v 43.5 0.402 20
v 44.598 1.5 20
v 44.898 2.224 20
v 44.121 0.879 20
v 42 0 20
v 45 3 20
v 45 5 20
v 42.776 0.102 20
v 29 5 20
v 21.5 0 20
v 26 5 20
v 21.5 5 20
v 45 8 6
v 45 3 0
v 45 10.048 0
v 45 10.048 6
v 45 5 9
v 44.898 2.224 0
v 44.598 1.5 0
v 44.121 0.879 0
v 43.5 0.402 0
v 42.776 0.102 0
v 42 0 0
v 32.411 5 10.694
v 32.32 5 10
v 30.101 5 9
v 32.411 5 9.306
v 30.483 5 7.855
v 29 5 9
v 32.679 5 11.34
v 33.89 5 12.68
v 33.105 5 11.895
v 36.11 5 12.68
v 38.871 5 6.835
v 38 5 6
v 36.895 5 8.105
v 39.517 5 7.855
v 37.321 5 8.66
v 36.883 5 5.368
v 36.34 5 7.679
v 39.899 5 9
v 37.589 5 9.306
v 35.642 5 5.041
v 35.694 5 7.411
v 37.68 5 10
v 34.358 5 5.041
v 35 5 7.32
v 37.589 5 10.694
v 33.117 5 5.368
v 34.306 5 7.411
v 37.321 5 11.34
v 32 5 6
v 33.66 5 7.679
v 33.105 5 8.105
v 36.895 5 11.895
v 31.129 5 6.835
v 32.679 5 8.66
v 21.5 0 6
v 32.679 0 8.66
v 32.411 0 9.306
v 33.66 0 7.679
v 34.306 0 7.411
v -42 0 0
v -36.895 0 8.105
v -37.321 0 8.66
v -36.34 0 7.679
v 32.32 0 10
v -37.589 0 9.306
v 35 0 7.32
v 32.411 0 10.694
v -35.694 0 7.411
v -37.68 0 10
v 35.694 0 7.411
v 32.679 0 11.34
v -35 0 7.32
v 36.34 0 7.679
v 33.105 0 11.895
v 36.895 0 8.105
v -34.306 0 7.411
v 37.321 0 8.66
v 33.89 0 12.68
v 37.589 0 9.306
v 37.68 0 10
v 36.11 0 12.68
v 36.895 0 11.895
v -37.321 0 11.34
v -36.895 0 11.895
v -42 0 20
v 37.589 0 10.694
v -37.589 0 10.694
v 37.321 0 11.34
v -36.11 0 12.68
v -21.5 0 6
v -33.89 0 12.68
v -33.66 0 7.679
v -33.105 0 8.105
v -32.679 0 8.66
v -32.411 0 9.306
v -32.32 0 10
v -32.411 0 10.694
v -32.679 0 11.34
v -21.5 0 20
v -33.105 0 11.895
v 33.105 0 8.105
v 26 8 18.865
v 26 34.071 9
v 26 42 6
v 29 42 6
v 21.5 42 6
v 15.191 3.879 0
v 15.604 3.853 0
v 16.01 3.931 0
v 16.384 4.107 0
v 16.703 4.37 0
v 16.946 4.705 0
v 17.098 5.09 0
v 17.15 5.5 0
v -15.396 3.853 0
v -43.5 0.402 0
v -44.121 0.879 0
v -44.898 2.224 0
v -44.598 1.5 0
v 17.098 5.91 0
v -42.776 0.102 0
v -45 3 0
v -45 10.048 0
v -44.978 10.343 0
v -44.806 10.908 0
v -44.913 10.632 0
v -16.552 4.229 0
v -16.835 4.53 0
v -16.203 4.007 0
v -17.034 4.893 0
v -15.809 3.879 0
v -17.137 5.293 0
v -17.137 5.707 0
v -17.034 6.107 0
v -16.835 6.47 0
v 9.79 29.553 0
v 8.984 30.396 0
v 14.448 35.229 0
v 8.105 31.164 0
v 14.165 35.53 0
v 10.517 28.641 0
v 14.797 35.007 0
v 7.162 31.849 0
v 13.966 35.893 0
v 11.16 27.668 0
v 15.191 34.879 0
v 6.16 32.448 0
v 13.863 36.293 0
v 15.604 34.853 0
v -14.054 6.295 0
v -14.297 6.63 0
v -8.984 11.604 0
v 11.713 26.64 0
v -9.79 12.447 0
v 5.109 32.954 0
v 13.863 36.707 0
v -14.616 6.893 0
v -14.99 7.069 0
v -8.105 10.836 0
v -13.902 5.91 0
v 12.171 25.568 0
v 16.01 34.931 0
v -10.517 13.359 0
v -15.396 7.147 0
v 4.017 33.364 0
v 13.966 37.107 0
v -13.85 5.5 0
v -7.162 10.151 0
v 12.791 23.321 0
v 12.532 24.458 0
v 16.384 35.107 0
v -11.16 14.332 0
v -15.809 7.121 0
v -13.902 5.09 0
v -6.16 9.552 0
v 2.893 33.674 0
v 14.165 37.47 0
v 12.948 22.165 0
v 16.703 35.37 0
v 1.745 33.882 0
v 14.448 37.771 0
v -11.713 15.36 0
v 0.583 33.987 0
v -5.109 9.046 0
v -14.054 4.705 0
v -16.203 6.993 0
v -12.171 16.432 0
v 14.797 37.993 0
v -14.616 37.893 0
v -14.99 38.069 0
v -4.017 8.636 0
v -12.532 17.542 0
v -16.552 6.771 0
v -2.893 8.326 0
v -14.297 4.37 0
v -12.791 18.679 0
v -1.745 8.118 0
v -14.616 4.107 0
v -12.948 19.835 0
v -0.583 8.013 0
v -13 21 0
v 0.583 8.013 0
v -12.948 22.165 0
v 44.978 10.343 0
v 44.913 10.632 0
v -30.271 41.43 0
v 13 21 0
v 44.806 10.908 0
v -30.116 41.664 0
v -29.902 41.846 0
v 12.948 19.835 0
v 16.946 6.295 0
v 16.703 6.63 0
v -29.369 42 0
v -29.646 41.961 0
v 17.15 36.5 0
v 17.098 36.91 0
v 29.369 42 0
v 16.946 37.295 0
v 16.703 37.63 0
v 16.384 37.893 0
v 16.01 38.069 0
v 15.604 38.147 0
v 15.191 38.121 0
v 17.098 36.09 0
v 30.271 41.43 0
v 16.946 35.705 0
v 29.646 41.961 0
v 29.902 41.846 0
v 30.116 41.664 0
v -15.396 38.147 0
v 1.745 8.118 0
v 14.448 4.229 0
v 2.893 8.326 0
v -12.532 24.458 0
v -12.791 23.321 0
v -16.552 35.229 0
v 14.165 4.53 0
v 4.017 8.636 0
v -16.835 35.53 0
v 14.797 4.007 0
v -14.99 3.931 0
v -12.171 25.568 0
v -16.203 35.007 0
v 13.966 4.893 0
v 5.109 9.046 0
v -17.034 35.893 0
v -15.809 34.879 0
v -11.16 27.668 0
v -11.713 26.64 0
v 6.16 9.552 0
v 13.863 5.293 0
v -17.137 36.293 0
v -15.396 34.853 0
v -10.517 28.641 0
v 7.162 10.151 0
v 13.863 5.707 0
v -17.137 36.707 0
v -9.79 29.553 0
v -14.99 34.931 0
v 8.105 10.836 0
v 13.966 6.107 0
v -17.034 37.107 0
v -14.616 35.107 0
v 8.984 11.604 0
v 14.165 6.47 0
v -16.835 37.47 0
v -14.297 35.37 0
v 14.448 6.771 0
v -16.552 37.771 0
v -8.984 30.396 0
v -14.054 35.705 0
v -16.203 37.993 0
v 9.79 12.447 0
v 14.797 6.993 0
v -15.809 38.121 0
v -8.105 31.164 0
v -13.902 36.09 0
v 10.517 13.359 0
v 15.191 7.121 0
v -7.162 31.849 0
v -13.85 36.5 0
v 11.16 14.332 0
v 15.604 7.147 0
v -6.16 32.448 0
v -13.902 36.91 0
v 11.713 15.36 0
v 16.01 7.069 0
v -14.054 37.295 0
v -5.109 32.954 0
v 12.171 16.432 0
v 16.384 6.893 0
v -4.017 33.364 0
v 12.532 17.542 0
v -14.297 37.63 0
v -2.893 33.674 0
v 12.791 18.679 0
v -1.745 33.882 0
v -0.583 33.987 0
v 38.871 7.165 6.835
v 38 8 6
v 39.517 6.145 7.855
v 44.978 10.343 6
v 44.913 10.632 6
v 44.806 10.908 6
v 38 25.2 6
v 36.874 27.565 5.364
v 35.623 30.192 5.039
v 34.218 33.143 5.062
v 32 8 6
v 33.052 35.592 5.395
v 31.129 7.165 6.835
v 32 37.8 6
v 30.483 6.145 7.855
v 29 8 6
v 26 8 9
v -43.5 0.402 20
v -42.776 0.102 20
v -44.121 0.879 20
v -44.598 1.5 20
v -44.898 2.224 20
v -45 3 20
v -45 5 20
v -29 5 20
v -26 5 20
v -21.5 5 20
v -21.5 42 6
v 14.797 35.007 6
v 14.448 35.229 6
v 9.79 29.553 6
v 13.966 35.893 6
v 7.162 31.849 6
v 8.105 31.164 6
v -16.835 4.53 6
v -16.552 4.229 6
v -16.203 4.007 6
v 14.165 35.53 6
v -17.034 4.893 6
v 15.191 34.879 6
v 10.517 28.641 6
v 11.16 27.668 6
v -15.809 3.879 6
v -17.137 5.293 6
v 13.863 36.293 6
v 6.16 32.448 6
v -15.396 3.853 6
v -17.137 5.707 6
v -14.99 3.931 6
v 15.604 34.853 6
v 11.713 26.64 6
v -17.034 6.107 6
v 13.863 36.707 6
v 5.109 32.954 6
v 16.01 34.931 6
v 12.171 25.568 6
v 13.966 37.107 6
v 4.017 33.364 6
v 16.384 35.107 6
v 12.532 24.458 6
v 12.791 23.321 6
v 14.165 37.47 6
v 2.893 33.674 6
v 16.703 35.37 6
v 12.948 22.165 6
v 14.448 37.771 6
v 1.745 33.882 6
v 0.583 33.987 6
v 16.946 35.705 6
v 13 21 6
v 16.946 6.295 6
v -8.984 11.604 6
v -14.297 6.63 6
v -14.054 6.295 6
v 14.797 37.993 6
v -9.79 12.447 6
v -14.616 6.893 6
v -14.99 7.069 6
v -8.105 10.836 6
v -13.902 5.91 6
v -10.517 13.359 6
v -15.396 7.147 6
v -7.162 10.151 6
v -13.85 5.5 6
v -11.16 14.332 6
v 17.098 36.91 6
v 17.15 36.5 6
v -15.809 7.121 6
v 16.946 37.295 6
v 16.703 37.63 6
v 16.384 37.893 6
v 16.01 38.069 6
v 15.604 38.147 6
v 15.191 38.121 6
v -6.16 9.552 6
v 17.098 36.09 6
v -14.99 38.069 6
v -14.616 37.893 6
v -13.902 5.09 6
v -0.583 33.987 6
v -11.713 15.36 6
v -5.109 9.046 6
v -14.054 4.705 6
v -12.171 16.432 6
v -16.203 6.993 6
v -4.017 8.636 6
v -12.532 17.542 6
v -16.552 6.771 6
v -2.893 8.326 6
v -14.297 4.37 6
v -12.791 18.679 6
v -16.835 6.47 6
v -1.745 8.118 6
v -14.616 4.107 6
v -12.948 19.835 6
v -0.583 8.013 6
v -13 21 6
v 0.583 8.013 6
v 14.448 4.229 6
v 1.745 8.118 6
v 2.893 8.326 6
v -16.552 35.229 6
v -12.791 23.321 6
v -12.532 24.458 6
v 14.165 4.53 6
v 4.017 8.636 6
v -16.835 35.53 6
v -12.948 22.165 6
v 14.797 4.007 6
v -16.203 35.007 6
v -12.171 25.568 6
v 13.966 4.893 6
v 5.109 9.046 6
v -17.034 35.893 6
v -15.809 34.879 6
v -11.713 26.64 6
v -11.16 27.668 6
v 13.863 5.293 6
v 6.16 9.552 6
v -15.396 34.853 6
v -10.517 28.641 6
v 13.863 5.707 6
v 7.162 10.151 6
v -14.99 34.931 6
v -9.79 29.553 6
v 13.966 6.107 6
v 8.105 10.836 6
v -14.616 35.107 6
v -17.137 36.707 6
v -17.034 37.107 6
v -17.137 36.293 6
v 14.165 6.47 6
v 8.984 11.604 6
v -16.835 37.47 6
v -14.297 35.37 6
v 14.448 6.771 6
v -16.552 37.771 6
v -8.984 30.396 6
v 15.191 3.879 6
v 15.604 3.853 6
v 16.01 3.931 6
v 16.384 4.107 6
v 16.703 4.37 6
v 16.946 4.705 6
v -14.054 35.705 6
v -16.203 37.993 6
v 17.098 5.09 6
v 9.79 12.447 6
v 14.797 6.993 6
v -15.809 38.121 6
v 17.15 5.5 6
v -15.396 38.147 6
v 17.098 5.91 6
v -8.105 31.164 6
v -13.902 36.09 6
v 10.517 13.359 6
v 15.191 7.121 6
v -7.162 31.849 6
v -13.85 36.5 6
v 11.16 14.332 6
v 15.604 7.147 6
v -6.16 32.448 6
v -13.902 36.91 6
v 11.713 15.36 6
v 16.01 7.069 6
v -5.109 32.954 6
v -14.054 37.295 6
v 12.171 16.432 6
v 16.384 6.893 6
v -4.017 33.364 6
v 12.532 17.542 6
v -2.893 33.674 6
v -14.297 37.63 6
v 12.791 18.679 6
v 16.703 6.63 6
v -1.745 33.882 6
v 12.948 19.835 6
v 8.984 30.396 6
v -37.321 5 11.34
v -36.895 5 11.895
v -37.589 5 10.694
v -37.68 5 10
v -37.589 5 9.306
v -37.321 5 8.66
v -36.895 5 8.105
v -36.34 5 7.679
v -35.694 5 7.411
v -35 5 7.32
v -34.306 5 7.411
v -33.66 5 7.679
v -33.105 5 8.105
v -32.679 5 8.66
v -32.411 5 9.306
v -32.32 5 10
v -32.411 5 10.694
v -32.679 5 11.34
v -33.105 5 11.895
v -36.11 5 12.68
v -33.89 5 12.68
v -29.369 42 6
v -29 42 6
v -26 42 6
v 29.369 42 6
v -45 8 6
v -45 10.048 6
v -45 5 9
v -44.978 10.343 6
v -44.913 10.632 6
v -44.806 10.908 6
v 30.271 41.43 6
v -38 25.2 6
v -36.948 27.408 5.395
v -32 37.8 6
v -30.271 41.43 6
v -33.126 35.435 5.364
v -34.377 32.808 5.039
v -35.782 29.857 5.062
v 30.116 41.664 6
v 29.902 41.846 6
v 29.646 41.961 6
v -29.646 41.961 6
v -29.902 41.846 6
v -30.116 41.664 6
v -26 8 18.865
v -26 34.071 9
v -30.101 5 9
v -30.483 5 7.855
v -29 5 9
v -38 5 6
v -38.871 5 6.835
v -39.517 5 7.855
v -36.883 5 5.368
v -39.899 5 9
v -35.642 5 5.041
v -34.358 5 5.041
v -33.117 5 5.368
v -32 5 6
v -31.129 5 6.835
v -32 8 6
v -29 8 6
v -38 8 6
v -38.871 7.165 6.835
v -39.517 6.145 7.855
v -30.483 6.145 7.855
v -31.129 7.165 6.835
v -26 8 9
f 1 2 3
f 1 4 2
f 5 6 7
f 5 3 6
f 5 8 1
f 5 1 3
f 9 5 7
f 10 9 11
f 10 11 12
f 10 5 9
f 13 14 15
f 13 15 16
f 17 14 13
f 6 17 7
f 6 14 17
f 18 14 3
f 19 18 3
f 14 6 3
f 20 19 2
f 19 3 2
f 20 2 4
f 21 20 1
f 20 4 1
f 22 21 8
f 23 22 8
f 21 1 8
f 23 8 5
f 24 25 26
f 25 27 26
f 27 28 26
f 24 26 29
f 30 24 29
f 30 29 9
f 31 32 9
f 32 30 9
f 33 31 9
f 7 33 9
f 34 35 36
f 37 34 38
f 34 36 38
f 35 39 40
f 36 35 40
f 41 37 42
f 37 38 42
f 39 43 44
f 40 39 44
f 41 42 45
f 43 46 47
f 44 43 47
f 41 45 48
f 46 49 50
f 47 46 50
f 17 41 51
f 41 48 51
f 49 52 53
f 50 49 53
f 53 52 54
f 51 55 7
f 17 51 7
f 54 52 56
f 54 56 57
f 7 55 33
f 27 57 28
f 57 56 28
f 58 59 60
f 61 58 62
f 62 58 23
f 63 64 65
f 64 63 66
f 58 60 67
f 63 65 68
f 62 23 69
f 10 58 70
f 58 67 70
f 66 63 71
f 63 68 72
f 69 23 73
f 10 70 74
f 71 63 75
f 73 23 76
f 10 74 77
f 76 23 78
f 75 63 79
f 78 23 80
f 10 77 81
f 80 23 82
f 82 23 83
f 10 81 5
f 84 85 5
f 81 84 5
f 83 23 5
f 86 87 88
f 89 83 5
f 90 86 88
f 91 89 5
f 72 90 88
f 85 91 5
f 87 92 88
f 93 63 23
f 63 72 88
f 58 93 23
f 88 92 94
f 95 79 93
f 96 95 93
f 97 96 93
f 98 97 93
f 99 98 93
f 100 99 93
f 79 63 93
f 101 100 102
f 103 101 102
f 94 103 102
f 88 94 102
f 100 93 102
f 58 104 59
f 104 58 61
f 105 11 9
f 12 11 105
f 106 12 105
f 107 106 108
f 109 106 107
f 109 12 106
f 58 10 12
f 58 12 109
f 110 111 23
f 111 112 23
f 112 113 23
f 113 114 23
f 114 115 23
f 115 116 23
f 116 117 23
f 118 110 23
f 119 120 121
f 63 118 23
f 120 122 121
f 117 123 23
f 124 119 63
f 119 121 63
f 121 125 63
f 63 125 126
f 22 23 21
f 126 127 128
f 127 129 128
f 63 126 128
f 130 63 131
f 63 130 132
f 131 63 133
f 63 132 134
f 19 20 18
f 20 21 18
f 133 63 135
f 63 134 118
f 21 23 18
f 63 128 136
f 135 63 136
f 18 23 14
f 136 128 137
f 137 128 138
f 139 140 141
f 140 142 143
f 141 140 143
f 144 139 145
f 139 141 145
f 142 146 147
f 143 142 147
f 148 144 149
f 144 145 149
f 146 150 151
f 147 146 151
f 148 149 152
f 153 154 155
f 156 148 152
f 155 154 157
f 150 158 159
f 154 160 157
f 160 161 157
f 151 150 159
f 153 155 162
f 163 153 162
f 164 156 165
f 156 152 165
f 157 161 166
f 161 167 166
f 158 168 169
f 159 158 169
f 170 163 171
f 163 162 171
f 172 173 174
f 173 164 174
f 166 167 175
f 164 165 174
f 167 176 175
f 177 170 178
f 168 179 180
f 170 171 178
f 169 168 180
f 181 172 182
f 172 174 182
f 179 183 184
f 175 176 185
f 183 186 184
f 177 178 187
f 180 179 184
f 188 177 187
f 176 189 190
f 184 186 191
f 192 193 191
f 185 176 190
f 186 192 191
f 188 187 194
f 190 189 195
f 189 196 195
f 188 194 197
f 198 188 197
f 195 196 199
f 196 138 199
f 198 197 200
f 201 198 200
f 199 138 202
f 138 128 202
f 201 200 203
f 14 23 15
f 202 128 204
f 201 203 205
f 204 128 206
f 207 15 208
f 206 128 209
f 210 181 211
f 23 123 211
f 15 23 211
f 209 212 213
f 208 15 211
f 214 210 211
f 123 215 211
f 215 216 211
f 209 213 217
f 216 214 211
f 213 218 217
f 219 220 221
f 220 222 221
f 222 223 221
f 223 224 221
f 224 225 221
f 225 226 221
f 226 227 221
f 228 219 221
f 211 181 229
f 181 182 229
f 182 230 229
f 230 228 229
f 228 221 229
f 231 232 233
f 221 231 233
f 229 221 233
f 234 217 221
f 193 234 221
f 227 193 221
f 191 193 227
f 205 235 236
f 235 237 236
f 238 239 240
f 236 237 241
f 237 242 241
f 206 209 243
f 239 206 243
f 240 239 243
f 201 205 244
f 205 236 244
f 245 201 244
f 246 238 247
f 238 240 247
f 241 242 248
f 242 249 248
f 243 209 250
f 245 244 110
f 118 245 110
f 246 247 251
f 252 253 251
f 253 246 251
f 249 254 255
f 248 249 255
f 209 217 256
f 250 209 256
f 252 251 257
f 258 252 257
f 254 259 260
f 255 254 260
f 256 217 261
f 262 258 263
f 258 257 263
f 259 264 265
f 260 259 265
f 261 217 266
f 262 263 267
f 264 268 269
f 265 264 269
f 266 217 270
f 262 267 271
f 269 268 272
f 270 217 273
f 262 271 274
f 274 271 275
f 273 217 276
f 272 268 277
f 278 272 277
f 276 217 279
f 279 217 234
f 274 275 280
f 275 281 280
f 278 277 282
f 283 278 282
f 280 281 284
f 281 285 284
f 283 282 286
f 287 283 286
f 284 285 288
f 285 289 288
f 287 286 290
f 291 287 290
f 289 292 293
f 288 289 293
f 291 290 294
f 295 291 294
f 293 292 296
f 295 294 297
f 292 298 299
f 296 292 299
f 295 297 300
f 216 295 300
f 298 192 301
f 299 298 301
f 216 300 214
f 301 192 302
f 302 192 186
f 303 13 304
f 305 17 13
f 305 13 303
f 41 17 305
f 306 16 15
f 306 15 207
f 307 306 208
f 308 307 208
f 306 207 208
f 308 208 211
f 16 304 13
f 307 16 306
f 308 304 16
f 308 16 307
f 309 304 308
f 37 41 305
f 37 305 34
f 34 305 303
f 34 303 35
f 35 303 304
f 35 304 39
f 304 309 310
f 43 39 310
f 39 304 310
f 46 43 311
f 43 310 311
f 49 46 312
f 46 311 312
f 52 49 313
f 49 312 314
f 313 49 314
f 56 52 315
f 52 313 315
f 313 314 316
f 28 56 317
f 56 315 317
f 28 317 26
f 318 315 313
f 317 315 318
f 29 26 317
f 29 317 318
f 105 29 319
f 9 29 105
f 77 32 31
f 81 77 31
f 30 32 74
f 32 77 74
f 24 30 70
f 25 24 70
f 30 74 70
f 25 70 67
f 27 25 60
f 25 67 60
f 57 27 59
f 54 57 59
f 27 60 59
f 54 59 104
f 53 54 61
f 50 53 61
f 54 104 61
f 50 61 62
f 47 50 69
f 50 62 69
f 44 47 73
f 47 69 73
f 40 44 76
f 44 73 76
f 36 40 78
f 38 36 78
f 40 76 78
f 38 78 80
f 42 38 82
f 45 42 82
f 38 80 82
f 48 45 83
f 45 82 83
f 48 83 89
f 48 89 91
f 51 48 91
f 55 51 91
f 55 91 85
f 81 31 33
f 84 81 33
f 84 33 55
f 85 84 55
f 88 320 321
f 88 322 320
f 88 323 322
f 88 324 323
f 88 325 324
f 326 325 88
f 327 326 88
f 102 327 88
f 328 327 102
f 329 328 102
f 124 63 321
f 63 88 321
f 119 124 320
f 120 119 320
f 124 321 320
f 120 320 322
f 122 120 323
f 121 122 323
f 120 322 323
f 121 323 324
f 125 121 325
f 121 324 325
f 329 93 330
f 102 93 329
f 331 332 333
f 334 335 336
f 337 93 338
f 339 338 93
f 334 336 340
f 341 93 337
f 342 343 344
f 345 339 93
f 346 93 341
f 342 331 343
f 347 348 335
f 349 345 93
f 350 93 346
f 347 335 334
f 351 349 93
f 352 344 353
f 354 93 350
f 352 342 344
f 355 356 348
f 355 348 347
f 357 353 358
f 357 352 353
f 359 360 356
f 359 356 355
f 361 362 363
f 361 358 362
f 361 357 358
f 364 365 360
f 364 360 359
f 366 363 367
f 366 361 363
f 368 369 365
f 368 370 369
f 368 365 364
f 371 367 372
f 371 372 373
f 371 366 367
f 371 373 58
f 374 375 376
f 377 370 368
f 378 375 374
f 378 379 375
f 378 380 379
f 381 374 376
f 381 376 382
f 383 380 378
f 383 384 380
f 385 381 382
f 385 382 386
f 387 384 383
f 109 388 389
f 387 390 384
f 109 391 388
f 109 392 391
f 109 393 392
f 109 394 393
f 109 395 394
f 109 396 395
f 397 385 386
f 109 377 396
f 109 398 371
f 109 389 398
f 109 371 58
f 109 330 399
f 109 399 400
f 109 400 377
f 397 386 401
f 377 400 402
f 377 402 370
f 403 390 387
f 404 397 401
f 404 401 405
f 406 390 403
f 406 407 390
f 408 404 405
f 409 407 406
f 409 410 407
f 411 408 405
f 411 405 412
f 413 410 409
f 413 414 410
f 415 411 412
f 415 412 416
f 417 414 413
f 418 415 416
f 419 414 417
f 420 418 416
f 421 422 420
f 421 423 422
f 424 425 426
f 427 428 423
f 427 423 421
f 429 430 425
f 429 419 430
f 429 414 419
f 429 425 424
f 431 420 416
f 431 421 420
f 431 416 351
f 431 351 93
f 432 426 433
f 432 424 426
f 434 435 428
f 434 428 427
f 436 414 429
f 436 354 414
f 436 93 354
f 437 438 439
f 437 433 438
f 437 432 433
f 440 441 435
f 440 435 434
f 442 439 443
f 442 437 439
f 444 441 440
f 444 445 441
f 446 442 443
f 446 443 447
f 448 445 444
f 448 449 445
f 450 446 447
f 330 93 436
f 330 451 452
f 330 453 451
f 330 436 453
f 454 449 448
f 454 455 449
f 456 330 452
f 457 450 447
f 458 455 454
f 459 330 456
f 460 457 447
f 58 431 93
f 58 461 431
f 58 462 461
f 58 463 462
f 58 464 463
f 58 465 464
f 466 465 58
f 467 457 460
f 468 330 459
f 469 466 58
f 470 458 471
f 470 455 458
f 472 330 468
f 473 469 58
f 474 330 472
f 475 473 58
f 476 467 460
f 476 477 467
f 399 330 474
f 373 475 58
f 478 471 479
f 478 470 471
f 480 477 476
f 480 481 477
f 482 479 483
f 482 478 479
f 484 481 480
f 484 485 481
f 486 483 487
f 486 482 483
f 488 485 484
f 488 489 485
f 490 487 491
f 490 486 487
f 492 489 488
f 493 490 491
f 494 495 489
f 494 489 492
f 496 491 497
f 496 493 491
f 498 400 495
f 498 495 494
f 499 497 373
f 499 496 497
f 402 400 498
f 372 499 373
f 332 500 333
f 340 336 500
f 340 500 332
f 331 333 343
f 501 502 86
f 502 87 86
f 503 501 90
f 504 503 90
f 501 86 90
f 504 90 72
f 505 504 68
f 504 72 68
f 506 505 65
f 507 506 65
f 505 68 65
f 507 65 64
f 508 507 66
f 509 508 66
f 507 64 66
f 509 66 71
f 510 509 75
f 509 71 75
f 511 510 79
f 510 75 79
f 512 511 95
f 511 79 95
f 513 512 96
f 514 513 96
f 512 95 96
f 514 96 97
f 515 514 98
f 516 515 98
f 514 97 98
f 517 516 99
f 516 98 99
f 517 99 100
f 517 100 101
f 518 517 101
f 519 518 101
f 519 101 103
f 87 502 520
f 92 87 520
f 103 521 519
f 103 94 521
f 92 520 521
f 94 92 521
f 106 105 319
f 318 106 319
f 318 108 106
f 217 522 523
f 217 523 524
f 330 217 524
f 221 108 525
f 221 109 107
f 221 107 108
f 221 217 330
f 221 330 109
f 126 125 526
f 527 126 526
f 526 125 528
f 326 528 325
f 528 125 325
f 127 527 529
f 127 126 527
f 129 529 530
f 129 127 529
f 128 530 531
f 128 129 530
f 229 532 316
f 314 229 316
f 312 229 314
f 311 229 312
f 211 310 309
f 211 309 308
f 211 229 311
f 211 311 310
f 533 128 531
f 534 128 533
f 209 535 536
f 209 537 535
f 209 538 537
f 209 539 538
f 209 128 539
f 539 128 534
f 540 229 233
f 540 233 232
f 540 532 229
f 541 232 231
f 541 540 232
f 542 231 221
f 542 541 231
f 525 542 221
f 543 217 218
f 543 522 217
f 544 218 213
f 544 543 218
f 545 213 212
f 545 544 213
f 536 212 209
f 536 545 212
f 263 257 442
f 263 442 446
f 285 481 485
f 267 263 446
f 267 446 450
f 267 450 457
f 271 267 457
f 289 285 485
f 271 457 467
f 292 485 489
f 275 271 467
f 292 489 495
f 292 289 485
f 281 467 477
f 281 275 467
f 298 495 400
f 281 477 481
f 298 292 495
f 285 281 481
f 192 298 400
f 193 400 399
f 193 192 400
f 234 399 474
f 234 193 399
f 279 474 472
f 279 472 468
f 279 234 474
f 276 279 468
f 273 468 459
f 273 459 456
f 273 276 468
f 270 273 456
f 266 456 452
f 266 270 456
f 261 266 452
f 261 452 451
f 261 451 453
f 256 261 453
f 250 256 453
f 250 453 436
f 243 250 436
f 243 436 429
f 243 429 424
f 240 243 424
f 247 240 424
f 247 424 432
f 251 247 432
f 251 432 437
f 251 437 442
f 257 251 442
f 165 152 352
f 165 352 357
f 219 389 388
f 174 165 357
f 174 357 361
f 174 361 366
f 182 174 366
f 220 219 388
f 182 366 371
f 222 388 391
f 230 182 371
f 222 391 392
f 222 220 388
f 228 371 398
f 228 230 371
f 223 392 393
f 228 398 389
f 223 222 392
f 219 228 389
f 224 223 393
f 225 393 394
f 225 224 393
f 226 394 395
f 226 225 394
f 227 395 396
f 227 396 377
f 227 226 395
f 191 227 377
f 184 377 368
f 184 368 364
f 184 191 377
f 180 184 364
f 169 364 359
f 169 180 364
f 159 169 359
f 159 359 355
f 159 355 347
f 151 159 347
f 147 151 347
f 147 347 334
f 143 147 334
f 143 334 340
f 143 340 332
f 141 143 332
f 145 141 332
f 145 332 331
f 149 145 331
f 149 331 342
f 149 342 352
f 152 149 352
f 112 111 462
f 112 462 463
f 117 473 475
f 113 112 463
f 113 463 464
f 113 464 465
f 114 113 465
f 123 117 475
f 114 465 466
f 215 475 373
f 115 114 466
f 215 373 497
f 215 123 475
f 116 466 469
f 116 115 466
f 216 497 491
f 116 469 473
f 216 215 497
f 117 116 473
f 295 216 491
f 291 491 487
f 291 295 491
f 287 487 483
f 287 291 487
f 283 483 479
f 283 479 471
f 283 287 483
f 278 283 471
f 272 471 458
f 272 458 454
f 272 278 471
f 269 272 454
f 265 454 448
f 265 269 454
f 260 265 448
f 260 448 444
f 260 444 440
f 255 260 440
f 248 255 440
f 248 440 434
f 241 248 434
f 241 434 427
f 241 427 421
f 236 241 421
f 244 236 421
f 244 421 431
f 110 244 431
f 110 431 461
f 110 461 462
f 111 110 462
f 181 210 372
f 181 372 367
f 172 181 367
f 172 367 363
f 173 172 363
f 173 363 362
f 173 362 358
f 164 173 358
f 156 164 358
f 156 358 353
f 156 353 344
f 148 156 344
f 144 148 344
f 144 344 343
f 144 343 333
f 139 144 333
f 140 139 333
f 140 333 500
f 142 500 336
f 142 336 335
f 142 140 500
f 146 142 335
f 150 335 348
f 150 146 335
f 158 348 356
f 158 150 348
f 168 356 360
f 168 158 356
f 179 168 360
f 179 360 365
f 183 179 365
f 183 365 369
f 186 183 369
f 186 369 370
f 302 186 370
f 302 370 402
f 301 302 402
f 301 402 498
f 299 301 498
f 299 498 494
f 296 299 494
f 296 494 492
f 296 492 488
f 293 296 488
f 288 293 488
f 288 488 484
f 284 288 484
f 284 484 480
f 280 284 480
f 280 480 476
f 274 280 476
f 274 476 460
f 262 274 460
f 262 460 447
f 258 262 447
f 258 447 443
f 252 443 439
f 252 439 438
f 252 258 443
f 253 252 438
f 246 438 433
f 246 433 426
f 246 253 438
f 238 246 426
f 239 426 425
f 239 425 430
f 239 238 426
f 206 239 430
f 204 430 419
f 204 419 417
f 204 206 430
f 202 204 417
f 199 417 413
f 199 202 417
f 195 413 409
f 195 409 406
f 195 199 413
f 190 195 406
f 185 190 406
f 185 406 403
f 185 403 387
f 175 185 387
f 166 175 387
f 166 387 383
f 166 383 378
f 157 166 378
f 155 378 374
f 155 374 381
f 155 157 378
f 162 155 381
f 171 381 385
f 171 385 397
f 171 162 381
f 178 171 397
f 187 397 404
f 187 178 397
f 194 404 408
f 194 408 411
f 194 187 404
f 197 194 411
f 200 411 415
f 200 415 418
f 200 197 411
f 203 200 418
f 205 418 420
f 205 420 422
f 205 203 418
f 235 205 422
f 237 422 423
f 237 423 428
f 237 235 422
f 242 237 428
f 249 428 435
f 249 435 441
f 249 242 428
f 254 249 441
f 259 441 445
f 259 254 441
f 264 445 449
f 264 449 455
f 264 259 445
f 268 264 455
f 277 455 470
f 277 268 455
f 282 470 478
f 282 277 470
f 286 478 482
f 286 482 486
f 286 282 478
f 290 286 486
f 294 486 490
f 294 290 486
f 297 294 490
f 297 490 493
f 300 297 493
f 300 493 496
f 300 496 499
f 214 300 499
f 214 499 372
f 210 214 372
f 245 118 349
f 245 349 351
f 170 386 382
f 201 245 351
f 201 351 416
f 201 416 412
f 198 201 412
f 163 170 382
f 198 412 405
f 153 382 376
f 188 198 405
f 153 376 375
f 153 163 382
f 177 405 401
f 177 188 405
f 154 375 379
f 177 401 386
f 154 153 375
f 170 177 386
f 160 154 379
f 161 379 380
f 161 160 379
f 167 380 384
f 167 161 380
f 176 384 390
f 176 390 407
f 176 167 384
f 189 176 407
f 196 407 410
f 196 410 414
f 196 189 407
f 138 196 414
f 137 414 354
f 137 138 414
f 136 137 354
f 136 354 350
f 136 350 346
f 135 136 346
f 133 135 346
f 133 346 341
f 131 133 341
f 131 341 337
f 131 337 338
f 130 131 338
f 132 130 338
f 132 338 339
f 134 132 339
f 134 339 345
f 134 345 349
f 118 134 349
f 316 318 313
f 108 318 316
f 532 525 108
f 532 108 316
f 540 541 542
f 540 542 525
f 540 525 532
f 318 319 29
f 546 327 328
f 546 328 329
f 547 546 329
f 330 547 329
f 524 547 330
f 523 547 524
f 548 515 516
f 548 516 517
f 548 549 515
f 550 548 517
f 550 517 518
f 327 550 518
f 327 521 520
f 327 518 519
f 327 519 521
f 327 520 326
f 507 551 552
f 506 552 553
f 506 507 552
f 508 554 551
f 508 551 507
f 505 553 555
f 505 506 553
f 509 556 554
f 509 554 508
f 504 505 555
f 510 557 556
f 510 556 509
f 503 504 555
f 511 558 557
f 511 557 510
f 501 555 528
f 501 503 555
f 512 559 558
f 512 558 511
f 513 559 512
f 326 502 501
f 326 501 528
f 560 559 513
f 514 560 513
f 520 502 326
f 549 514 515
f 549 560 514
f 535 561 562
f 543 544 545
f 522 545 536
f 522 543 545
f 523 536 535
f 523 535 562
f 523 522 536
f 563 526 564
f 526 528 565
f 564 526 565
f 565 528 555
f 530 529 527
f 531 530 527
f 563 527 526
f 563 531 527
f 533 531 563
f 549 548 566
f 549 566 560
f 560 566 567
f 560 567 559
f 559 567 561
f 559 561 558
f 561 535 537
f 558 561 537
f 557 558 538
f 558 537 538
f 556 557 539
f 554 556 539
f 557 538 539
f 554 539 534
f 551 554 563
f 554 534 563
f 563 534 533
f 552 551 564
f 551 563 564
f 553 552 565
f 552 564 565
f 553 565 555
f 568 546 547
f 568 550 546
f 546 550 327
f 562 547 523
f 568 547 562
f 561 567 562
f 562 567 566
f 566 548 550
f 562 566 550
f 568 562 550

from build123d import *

# Parameters (mm, degrees)
BOX001_W                             = 10
BOX001_H                             = 20
BOX001_DEPTH                         = 20
EXTRUDE002_DEPTH                     = 10
EXTRUDE002_ONTO_SKETCH003_ROLL_ANGLE = 90
BOX_W                                = 28.5
BOX_H                                = 5
BOX_DEPTH                            = 20
CLONE_PLACEMENT_ANGLE                = 180
CYLINDER_R                           = 5
CYLINDER_DEPTH                       = 35
CYLINDER_ROLL_ANGLE                  = -90
SKETCH_R                             = 1.65
SKETCH_R_2                           = 13
EXTRUDE_DEPTH                        = 6
EXTRUDE001_DEPTH                     = 4.5
CHAMFER_SIZE                         = 3
FILLET_1_R                           = 3
FILLET_2_R                           = 2
FILLET_3_R                           = 1


with BuildPart() as cubo:
    # Box001 → Box001 (new body)
    with BuildSketch(Plane(origin=(45, 0, 0), x_dir=(1, 0, 0), z_dir=(0, 0, 1))):
        with Locations((5, 10)):
            Rectangle(BOX001_W, BOX001_H)
    extrude(amount=BOX001_DEPTH)


with BuildPart() as clone_of_cubo:
    # Clone004 base: copy of Cubo
    add(cubo.part)


with BuildPart() as clone_of_cubo_1:
    # Clone004 placement: moved
    add(clone_of_cubo.part.moved(Location((-100, 0, 0))))


with BuildPart() as cubos_recorte:
    # Fusion002 base: copy of Cubo
    add(cubo.part)

    # Fusion002: union Clone of Cubo
    add(clone_of_cubo_1.part)


with BuildPart() as m5_repraphole_extrusion:
    # Sketch003 as drawn → Extrude002 (new)
    with BuildSketch(Plane.XY):
        with BuildLine():
            ThreePointArc((-1.895057, 1.895035), (0, -2.68), (1.895057, 1.895035))
            Line((1.110092, 2.68), (1.895057, 1.895035))
            Line((-1.110092, 2.68), (1.110092, 2.68))
            Line((-1.895057, 1.895035), (-1.110092, 2.68))
        make_face()
    extrude(amount=-EXTRUDE002_DEPTH)


with BuildPart() as m5_repraphole_extrusion_1:
    # Extrude002 onto Sketch003 roll: moved
    add(m5_repraphole_extrusion.part.rotate(Axis((0, 0, 0), (1, 0, 0)), EXTRUDE002_ONTO_SKETCH003_ROLL_ANGLE))


with BuildPart() as m5_repraphole_extrusion_2:
    # Extrude002 onto Sketch003 placement: moved
    add(m5_repraphole_extrusion_1.part.moved(Location((0, 0, 10))))


with BuildPart() as m5_repraphole_extrusion_3:
    # Extrude002 placement: moved
    add(m5_repraphole_extrusion_2.part.moved(Location((35, -1, 0))))


with BuildPart() as clone002:
    # Clone002 base: copy of M5_repraphole_extrusion
    add(m5_repraphole_extrusion_3.part)


with BuildPart() as clone002_1:
    # Clone002 placement: moved
    add(clone002.part.moved(Location((-70, 0, 0))))


with BuildPart() as soporte_vertical:
    # Box → Box (new body)
    with BuildSketch(Plane(origin=(-50, 0, 0), x_dir=(1, 0, 0), z_dir=(0, 0, 1))):
        with Locations((14.25, 2.5)):
            Rectangle(BOX_W, BOX_H)
    extrude(amount=BOX_DEPTH)


with BuildPart() as cut:
    # Cut base: copy of soporte_vertical
    add(soporte_vertical.part)

    # Cut: cut Clone002
    add(clone002_1.part, mode=Mode.SUBTRACT)


with BuildPart() as cut001:
    # Clone base: copy of soporte_vertical
    add(soporte_vertical.part)


with BuildPart() as cut001_1:
    # Clone placement: moved
    add(cut001.part.moved(Location((0, 5, 0))).rotate(Axis((0, 5, 0), (0, 0, 1)), CLONE_PLACEMENT_ANGLE))

    # Cut001: cut M5_repraphole_extrusion
    add(m5_repraphole_extrusion_3.part, mode=Mode.SUBTRACT)


with BuildPart() as hueco_cabeza_tornillo:
    # Cylinder → Cylinder (new body)
    with BuildSketch(Plane.XY):
        Circle(CYLINDER_R)
    extrude(amount=CYLINDER_DEPTH)


with BuildPart() as hueco_cabeza_tornillo_1:
    # Cylinder roll: moved
    add(hueco_cabeza_tornillo.part.rotate(Axis((0, 0, 0), (1, 0, 0)), CYLINDER_ROLL_ANGLE))


with BuildPart() as hueco_cabeza_tornillo_2:
    # Cylinder placement: moved
    add(hueco_cabeza_tornillo_1.part.moved(Location((35, 5, 10))))


with BuildPart() as huecos_cabeza_tornillo:
    # Clone003 base: copy of hueco_cabeza_tornillo
    add(hueco_cabeza_tornillo_2.part)


with BuildPart() as huecos_cabeza_tornillo_1:
    # Clone003 placement: moved
    add(huecos_cabeza_tornillo.part.moved(Location((-70, 0, 0))))

    # Fusion: union hueco_cabeza_tornillo
    add(hueco_cabeza_tornillo_2.part)


with BuildPart() as base_hueco_motor_con_cabeza_tornillo:
    # Sketch → Extrude (new body)
    with BuildSketch(Plane.XY):
        Polygon((-30, 42), (30, 42), (50, 0), (-50, 0), align=None)
        with Locations((-15.5, 36.5)):
            Circle(SKETCH_R, mode=Mode.SUBTRACT)
        with Locations((15.5, 36.5)):
            Circle(SKETCH_R, mode=Mode.SUBTRACT)
        with Locations((-15.5, 5.5)):
            Circle(SKETCH_R, mode=Mode.SUBTRACT)
        with Locations((15.5, 5.5)):
            Circle(SKETCH_R, mode=Mode.SUBTRACT)
        with Locations((0, 21)):
            Circle(SKETCH_R_2, mode=Mode.SUBTRACT)
    extrude(amount=EXTRUDE_DEPTH)

    # Cut002: cut huecos_cabeza_tornillo
    add(huecos_cabeza_tornillo_1.part, mode=Mode.SUBTRACT)


with BuildPart() as refuerzo_triangular:
    # Sketch002 → Extrude001 (new body)
    with BuildSketch(Plane.YZ):
        Polygon((5, 20), (42, 6), (5, 6), align=None)
    extrude(amount=EXTRUDE001_DEPTH)


with BuildPart() as refuerzo_triangular_1:
    # Extrude001 placement: moved
    add(refuerzo_triangular.part.moved(Location((21.5, 0, 0))))


with BuildPart() as clone001:
    # Clone001 base: copy of refuerzo_triangular
    add(refuerzo_triangular_1.part)


with BuildPart() as clone001_1:
    # Clone001 placement: moved
    add(clone001.part.moved(Location((-47.5, 0, 0))))


with BuildPart() as nema17_holder_v03:
    # Fusion001 base: copy of refuerzo_triangular
    add(refuerzo_triangular_1.part)

    # Fusion001: union Cut, Cut001, base_hueco_motor_con_cabeza_tornillo, Clone001
    add(cut.part)
    add(cut001_1.part)
    add(base_hueco_motor_con_cabeza_tornillo.part)
    add(clone001_1.part)

    # Chamfer
    chamfer_edges = [nema17_holder_v03.edges().sort_by_distance(p)[0] for p in [
        (26, 5, 13),
        (26, 23.5, 6),
        (42.809524, 5, 6),
        (29, 5, 6),
        (-26, 23.5, 6),
        (-29, 5, 6),
        (-42.809524, 5, 6),
        (-26, 5, 13),
    ]]
    chamfer(chamfer_edges, length=CHAMFER_SIZE)

    # Cut003: cut cubos_recorte
    add(cubos_recorte.part, mode=Mode.SUBTRACT)

    # Fillet 1
    fillet_1_edges = [nema17_holder_v03.edges().sort_by_distance(p)[0] for p in [
        (45, 0, 10),
        (-45, 0, 10),
    ]]
    fillet(fillet_1_edges, radius=FILLET_1_R)

    # Fillet 2
    fillet_2_edges = [nema17_holder_v03.edges().sort_by_distance(p)[0] for p in [
        (45, 10.5, 3),
        (-45, 10.5, 3),
    ]]
    fillet(fillet_2_edges, radius=FILLET_2_R)

    # Fillet 3
    fillet_3_edges = [nema17_holder_v03.edges().sort_by_distance(p)[0] for p in [
        (30, 42, 3),
        (-30, 42, 3),
    ]]
    fillet(fillet_3_edges, radius=FILLET_3_R)


solid = nema17_holder_v03.part
